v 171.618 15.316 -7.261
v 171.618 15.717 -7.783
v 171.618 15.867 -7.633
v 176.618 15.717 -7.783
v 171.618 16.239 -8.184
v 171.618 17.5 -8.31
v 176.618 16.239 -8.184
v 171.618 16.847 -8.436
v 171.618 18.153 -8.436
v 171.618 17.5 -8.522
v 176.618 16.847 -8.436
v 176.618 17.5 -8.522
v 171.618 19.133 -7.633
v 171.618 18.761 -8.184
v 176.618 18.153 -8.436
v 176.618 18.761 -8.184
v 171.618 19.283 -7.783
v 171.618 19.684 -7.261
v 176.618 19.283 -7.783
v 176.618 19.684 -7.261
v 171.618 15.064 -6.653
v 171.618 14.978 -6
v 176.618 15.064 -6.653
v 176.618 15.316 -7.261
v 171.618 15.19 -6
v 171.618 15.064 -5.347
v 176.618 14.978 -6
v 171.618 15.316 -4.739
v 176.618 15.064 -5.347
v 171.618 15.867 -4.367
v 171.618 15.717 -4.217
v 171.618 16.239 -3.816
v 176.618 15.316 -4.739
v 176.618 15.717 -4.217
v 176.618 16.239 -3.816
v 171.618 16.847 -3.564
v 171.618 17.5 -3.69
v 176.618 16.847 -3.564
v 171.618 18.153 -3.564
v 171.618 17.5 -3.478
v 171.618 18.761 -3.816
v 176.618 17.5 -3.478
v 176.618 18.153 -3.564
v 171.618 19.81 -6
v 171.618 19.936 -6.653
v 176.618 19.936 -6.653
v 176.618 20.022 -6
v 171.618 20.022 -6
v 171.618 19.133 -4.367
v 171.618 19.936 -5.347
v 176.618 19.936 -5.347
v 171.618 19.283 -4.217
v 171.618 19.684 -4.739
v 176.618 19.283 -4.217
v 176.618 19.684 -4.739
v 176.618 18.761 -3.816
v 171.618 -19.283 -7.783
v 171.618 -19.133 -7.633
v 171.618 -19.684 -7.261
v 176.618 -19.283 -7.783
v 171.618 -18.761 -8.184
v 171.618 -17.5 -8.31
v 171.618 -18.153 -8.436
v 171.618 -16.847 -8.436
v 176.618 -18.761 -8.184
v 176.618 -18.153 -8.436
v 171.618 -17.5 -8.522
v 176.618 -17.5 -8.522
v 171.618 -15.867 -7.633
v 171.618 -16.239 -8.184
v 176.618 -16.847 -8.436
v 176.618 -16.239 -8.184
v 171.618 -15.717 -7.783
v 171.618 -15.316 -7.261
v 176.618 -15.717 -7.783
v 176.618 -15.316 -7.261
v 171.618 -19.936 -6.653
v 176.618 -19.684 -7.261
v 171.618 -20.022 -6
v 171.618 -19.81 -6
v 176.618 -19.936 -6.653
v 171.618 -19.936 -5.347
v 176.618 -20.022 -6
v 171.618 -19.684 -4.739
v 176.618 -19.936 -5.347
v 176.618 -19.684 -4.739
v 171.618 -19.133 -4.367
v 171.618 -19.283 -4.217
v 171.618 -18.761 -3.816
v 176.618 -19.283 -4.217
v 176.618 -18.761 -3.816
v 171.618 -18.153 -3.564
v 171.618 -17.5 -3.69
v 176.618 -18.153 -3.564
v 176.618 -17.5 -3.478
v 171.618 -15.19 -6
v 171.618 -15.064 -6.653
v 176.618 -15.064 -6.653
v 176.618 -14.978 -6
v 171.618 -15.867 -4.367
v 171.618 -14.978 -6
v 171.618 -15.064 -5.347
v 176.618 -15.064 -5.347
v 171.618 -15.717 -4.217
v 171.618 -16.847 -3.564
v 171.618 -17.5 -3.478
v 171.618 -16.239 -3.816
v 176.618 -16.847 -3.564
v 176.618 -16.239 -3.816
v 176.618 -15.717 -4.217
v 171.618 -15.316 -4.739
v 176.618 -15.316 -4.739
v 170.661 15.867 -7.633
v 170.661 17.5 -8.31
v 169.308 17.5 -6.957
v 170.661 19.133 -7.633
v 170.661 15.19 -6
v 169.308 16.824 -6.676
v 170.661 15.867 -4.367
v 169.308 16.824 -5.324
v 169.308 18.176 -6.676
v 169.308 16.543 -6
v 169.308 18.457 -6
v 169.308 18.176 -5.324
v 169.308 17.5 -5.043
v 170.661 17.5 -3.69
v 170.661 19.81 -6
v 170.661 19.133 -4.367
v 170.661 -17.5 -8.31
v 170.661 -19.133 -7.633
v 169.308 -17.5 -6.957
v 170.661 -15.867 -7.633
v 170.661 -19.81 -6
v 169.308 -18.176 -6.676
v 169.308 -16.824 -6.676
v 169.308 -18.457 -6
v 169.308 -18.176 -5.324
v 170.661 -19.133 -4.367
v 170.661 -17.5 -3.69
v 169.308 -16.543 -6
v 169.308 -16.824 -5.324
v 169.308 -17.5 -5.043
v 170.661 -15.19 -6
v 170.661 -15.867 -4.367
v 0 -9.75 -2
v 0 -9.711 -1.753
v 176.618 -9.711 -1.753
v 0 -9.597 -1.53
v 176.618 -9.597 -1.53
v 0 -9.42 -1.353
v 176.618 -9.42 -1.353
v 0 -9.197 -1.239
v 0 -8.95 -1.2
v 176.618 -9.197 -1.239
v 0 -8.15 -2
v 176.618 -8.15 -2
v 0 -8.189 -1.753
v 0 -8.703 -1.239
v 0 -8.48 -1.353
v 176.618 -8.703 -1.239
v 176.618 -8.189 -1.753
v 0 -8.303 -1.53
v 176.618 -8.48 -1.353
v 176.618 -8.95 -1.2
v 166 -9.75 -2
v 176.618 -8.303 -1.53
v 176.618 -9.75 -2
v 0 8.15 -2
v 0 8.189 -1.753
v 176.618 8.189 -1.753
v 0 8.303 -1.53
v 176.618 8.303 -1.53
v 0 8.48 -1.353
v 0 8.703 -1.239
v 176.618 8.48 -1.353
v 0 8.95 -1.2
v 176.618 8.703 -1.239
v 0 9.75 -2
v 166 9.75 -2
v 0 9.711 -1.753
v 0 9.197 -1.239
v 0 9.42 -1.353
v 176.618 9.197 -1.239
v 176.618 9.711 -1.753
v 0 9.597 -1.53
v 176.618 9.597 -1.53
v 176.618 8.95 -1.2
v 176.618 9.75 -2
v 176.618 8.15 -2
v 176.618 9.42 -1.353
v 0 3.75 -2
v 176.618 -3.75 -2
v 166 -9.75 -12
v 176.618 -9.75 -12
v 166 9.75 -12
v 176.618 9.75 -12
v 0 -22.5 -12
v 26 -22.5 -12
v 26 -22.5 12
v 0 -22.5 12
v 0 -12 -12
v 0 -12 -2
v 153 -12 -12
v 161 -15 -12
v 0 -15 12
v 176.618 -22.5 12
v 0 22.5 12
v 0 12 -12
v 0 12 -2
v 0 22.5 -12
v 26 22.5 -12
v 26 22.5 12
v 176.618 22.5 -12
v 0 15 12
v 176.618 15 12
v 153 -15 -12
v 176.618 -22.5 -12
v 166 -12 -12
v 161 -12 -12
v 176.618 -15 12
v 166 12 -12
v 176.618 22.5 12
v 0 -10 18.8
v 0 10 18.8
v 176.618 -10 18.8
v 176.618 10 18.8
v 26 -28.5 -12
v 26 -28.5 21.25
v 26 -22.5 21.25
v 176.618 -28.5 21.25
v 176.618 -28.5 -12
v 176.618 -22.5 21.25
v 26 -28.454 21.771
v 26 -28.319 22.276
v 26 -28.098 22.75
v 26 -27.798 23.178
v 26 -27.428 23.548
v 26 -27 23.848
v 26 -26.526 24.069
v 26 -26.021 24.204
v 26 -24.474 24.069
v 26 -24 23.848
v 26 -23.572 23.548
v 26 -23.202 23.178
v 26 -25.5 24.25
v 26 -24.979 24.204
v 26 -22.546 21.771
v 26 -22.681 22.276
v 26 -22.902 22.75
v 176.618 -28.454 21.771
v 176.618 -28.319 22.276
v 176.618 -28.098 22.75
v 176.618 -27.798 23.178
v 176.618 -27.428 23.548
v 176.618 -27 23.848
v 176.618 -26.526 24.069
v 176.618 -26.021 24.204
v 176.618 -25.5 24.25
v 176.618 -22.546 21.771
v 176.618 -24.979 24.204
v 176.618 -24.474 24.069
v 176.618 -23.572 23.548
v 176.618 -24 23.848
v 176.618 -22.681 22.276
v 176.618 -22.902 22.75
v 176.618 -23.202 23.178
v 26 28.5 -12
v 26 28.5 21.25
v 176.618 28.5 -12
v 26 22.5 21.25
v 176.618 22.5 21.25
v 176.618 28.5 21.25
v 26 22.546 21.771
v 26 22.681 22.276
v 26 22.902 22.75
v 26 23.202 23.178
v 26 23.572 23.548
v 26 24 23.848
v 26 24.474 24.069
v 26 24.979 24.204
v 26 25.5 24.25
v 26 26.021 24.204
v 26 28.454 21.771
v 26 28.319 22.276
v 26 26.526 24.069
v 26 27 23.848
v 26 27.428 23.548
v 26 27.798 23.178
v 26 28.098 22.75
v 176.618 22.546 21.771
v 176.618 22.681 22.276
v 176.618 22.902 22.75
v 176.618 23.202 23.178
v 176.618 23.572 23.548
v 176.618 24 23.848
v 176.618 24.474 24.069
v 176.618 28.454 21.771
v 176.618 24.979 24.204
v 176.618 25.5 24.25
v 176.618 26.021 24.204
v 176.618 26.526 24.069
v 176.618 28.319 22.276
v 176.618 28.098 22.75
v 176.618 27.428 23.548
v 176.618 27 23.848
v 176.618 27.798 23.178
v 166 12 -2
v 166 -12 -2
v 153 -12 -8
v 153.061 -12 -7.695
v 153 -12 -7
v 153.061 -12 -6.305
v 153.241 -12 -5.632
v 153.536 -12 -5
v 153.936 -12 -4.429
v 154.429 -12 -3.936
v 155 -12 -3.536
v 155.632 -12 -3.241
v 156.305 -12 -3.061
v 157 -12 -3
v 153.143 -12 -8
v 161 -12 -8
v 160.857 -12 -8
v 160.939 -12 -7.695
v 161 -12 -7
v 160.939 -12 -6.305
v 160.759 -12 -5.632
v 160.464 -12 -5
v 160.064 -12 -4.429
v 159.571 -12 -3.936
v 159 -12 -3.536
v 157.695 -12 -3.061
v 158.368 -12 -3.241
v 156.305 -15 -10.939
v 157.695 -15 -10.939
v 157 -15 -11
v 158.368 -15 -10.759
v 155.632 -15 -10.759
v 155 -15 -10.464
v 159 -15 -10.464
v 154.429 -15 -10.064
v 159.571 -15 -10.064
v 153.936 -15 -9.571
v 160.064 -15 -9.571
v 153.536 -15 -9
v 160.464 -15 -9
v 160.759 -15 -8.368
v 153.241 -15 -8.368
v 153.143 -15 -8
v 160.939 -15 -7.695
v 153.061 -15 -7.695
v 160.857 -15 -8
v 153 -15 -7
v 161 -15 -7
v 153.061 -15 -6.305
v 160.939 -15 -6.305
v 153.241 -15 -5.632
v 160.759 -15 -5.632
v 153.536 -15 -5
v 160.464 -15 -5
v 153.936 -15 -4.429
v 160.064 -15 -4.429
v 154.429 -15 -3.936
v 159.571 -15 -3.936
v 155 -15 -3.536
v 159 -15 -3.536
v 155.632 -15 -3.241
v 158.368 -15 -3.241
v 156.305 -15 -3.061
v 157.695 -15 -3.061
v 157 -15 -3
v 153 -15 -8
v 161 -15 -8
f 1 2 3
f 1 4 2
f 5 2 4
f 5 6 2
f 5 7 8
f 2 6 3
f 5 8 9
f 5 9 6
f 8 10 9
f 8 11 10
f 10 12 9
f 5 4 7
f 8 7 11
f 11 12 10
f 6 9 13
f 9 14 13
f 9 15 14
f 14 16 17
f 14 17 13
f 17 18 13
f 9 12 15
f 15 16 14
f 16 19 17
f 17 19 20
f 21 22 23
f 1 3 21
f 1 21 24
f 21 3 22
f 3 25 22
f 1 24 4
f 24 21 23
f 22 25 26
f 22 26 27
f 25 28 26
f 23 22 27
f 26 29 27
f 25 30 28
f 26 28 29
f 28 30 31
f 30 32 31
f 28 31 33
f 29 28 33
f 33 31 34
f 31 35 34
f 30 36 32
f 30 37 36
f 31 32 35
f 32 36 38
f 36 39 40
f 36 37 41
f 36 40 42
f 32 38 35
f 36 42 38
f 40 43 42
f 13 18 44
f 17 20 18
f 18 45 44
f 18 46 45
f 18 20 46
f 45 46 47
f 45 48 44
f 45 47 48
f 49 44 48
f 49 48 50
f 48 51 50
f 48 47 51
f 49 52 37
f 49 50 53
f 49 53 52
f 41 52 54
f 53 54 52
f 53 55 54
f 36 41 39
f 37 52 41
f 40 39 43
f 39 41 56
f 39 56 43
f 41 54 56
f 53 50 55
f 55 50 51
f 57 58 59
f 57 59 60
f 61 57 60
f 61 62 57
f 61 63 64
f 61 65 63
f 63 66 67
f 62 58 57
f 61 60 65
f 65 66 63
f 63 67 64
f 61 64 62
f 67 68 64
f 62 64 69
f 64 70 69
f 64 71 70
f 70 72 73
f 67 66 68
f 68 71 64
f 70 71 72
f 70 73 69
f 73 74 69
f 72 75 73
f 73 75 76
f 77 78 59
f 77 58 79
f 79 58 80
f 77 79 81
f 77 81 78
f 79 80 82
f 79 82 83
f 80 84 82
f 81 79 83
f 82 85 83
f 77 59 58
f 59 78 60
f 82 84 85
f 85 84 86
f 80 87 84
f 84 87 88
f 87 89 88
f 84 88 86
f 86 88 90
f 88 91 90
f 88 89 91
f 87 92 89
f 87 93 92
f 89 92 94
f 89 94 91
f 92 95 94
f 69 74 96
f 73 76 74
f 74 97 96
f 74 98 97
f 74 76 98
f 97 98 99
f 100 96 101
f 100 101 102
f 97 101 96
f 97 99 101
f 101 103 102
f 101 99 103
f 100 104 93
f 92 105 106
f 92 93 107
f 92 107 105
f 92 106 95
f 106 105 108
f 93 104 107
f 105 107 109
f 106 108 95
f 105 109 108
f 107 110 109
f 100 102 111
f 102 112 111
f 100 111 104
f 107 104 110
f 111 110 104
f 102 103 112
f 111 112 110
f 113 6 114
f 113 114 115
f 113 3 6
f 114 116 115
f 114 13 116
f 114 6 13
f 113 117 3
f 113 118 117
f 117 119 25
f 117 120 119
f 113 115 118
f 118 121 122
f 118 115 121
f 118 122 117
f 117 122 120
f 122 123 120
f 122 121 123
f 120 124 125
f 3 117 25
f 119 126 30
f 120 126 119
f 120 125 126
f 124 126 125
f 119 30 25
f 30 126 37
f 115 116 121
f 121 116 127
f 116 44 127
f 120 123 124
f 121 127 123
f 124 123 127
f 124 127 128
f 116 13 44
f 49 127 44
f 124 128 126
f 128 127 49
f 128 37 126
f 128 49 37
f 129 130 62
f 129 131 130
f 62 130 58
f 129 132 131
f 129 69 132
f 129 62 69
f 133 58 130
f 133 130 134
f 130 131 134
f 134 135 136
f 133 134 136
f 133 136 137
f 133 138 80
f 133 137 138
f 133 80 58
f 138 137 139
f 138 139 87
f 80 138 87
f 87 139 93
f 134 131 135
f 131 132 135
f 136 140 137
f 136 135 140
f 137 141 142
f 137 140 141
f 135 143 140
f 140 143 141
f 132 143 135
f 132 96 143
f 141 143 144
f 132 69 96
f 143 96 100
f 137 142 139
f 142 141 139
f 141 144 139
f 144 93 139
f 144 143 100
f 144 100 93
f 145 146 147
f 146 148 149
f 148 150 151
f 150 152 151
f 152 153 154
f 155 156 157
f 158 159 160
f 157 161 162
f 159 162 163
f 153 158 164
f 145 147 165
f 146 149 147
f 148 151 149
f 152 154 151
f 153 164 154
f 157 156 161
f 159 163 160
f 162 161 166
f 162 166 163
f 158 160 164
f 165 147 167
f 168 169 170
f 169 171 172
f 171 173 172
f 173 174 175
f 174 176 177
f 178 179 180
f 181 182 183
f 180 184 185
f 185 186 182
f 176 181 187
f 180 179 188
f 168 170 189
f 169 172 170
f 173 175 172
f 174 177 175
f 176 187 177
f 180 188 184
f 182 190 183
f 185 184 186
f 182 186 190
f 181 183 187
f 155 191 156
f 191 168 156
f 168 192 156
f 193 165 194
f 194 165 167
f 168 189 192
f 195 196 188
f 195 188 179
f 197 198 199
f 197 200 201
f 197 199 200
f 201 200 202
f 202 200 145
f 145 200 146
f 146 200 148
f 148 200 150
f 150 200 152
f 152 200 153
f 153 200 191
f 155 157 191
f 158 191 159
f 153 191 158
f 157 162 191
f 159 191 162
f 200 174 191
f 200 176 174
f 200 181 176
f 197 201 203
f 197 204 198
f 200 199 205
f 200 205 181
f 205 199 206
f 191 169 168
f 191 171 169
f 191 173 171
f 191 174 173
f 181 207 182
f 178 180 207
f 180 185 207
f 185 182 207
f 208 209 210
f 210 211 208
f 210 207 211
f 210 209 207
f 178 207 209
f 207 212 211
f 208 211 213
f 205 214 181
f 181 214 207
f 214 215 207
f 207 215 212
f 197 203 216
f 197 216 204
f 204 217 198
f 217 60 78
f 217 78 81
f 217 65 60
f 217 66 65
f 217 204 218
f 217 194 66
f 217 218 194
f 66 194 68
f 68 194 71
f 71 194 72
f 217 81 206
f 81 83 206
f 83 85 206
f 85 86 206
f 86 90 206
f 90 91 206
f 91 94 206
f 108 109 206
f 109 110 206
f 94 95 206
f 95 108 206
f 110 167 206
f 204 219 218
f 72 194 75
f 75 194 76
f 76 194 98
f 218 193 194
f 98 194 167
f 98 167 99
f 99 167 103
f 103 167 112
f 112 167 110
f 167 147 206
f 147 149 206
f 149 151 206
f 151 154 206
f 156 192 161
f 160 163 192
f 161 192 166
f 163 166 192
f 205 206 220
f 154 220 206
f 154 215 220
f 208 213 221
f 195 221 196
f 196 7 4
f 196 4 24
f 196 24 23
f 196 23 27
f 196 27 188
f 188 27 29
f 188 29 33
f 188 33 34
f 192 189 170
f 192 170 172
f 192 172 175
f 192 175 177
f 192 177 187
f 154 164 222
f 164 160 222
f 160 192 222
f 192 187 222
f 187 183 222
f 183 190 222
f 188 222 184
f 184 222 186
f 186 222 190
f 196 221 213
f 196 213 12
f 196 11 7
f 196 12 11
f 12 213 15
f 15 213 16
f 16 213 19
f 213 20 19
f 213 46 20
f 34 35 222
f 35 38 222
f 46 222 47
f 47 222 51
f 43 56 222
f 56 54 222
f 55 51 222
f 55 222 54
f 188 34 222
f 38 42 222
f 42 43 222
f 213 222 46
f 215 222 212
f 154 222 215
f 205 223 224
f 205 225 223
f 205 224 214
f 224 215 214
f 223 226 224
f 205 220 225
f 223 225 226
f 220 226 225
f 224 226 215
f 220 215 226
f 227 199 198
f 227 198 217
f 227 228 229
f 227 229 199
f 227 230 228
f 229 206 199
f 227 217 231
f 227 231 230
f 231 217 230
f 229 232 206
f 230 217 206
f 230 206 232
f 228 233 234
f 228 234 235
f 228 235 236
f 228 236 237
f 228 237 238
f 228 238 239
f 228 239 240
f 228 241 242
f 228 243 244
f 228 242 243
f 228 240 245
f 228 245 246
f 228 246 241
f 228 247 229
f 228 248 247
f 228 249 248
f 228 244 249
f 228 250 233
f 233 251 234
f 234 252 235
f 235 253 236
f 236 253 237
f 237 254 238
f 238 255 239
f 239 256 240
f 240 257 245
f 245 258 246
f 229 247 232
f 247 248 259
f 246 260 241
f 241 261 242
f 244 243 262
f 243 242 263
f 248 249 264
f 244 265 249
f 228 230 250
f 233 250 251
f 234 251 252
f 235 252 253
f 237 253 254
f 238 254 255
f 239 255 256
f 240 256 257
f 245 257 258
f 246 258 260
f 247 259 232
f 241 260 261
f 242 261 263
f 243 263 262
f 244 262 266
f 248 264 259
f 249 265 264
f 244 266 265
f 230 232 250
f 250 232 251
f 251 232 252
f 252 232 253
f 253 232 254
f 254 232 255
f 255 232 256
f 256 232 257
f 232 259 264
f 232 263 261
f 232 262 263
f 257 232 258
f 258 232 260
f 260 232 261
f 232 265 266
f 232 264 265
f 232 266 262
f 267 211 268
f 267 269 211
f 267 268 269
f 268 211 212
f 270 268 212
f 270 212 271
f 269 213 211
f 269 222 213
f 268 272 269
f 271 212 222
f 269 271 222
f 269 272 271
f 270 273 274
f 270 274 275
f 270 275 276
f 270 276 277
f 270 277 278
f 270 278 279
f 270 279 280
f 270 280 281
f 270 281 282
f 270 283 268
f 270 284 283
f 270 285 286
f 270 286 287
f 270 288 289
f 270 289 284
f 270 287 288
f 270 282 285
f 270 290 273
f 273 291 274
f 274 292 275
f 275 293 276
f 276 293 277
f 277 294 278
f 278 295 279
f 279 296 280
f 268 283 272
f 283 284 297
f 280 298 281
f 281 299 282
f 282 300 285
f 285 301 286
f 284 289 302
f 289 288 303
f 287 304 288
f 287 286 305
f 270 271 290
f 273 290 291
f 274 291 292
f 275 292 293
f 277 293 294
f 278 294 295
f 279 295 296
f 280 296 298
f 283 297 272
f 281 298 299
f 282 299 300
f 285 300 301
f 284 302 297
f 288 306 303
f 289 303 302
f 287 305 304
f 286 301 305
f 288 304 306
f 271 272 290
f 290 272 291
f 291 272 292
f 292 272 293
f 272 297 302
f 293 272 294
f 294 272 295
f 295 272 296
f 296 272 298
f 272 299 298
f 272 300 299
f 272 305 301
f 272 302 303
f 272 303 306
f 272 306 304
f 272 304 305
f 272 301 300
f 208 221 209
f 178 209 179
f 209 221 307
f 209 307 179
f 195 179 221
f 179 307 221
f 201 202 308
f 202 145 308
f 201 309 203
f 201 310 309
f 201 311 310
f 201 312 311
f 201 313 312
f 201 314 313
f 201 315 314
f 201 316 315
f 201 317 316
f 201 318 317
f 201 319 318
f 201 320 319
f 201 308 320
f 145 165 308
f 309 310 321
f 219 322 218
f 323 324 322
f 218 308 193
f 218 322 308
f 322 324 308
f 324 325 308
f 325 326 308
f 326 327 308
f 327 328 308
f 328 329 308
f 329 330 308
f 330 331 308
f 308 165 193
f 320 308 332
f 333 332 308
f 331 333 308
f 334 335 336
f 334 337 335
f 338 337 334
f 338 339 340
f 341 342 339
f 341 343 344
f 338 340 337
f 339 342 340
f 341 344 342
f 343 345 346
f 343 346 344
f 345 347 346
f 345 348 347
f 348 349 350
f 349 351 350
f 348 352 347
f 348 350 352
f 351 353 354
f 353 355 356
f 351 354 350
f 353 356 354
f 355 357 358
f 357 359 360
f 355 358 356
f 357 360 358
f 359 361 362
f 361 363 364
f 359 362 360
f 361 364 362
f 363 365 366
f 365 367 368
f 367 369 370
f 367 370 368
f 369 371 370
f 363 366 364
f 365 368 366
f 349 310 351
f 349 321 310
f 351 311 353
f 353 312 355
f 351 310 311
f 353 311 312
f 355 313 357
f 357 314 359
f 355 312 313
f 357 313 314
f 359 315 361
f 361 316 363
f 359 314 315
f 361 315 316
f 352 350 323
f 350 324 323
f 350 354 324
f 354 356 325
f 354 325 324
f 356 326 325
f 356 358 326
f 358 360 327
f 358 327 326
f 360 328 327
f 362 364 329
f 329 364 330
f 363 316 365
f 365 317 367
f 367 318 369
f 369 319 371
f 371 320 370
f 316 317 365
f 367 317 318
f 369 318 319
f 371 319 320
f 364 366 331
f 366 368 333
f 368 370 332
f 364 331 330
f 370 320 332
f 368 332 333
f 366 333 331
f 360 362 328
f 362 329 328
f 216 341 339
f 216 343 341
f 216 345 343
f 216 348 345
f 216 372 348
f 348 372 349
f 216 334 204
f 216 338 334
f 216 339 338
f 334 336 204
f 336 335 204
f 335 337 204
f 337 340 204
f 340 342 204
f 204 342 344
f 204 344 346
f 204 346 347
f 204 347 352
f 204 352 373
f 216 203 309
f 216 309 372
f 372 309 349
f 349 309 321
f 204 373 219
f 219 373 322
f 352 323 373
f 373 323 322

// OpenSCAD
// file: bottom_bracket.scad
include <dimensions.scad> 

module screw_slot() {
  $fn=32;
  
  cylinder(h=total_height+1, d=screw_body_clearance);
  cylinder(h=total_height - screw_body_depth - screw_angle_depth, d=screw_head_clearance);
  translate([0, 0, total_height - screw_body_depth - screw_angle_depth]) {
    cylinder(h=screw_angle_depth, d1=screw_head_clearance, d2=screw_body_clearance);
  }
}

// Z should be set to the surface that is being joined to
module joiner_pins_male() {
  translate([depth/2, (hd_enclosure_width/2) - pin_diameter, 0]) {
    cylinder(d=pin_diameter, h=pin_length, $fn=24);
  }
  translate([depth/2, -((hd_enclosure_width/2) - pin_diameter), 0]) {
    cylinder(d=pin_diameter, h=pin_length, $fn=24);
  }
}

module cylinder_outer(height,radius,fn){
  fudge = 1/cos(180/fn);
  cylinder(h=height,r=radius*fudge,$fn=fn);
}

module sphere_outer(r,fn){
  fudge = 1/cos(180/fn);
  sphere(r=r*fudge,$fn=fn);
}

module octahedron(r=10) {
    polyhedron(
        points=[
            [r,0,0], [-r,0,0], [0,r,0], [0,-r,0], // Equator
            [0,0,r], [0,0,-r]                      // Poles
        ],
        faces=[
            [0,2,4], [2,1,4], [1,3,4], [3,0,4],    // Top faces
            [0,3,5], [3,1,5], [1,2,5], [2,0,5]     // Bottom faces
        ]
    );
}

module joiner_pins_female() {
  module pin() {
    cylinder_outer(radius=pin_diameter/2, height=pin_length, fn=24);
    //translate([0, 0, 0/*pin_length*/]) {
      sphere(r=pin_diameter/2, $fn=8);
      //}
  }
  
  translate([depth/2, (hd_enclosure_width/2) - pin_diameter, -pin_length]) {
    pin();
  }
  translate([depth/2, -((hd_enclosure_width/2) - pin_diameter), -pin_length]) {
    pin();
  }
}

module main_body(ts=true, h=total_height) {

  // the radius of the little fold in the PD side
  pd_enclosure_mini_radius = 0.8;
  dfloor = (ts ? seal_floor_offset : 0);
    
  difference() {

    // the floor
    translate([-dfloor, -hd_enclosure_width/2, 0]) {
      cube([dfloor + depth,hd_enclosure_width, h]);
    }

    // the carveout for the pet door side
    translate([depth - pd_enclosure_depth, -pd_enclosure_width/2, 0]) {
      cube([pd_enclosure_depth, pd_enclosure_width, h]);
      rotate([0, 0, 90]) {
        translate([pd_enclosure_mini_radius, 0, 0]){
          cylinder(r=pd_enclosure_mini_radius, h=h, $fn=20);
        }
        translate([pd_enclosure_width - pd_enclosure_mini_radius, 0, 0]) {
          cylinder(r=pd_enclosure_mini_radius, h=h, $fn=20);
        }
      }
    }
  }

  if (ts) {
    translate([-dfloor, 0, 0])
    trapezoid_seal(h=h);
  }
}

// the trapezoidal seal
module trapezoid_seal(h=total_height) {
  x0 = -seal_depth;

  y0 = -seal_small_width / 2;
  y1 = seal_small_width / 2;
  y2 = -seal_large_width / 2;
  y3 = seal_large_width / 2;
  
  linear_extrude(height=h) {
    polygon(points=[[x0, y0], [x0, y1], [0, y3], [0, y2]]);
  }
}

module track_slot() {
  l = seal_depth + depth + seal_floor_offset;
  
  translate([-(seal_depth + seal_floor_offset), 0, 0]) {
    rotate(a=[0,90,0]) {
      # cylinder(h=l, d=track_diameter, $fn=32);
    }
  }
}

module seal(h=overhang_height, l=hd_enclosure_depth + depth) {
  ri = overhang_indoor_width / 2;
  ro = overhang_outdoor_width / 2;

  // the indoor overhang
  translate([ri,
             -hd_enclosure_width/2 - overhang_indoor_width,
             track_height]) {
    cube([l-ri,
          overhang_indoor_width,
          h]);
    translate([0, ri, overhang_height-h])
      cylinder(r=ri, h=h, $fn=36);
  }

  // the outdoor overhang
  translate([ro,
             hd_enclosure_width/2,
             track_height]) {
    cube([l-ro,
          overhang_outdoor_width,
          h]);
    translate([0, ro, overhang_height-h])
      cylinder(r=ro, h=h, $fn=36);
  }
}

module seal_overhang(l=hd_enclosure_depth + depth) {
  translate([-hd_enclosure_depth, 0, 0])
    seal(l=l);
}


screw_y_offset = total_width / 4 + 1;
screw_x_offset = screw_body_clearance + 2;

module screw_slots() {
  translate([screw_x_offset, screw_y_offset, 0])
    screw_slot();
  
  translate([screw_x_offset, -screw_y_offset, 0])
    screw_slot();
}

// some little dots to help grip the petdoor side
module grippies(l=total_length) {
  grippy_radius = 0.75;
  grippy_thick = 0.3;
  grippy_angle = 45;
  
  for (x=[10, l-10, l/2]) {
    translate([x, 0, 0]) {
      /*
      translate([0, pd_enclosure_width/2, pd_enclosure_depth/2 - depth]) {
        // # sphere(r=grippy_radius, $fn=8);
        rotate([0, 90, 0])
        rotate([0, 0, 180-grippy_angle])
          cube([grippy_thick, grippy_radius, 3]);
      }
      translate([0, -pd_enclosure_width/2, pd_enclosure_depth/2 - depth]) {
        rotate([0, 90, 0])
        rotate([0, 0, grippy_angle])
          cube([grippy_thick, grippy_radius, 3]);
        // sphere(r=grippy_radius, $fn=8);
      }
      */
      translate([0, -pd_enclosure_width/2, pd_enclosure_depth/2 - depth])
        rotate([grippy_angle, 0, 0])
        cylinder(r=grippy_radius, h=grippy_thick, $fn=20);
      translate([0, pd_enclosure_width/2, pd_enclosure_depth/2 - depth])
        rotate([90, 0, 0])
        rotate([grippy_angle, 0, 0])
        cylinder(r=grippy_radius, h=grippy_thick, $fn=20);
    }
  }
}

module bottom_bracket() {
  
  seal_overhang();

  // screw_slots();

  difference() {
    main_body();
    track_slot();

    translate([0, 0, total_height-pin_length]) {
      joiner_pins_male();
    }
  }
}

// rotate([0, 180, 0])
translate([0, 0, -total_height]) bottom_bracket();
// file: dimensions.scad
//      +---------------------+
//      |                     |
//      |                     |
//      |                     |
//      |                     |
//      |                     |
//      |                     |
//      |                     |
//      |                     |
//      |                     |
//      |                     |
//   ^  |                     |
//   |  |                     |
//   Y  |                     |
//   |  |                     |
//   |  |                     |
//      +---------------------+
//       --  X (depth) --> 
// 

// the depth of the main body
depth = 12;

// the depth of the latch plate
latch_plate_depth = 3.25;

// the width of the enclosure for the human door side
hd_enclosure_width = 45;

// the depth of the enclosure for the human door side
hd_enclosure_depth = 10 * 2.5 + latch_plate_depth - 6 + 2;

// the width of the indoor overhang
overhang_indoor_width = 6;

// the width of the outdoor overhang
overhang_outdoor_width = 6;

// the total height
total_height = 290;

// the width of the enclosure for the pet door side
pd_enclosure_width = 20 - 0.5;

// the depth of the enclosure for the pet door side
pd_enclosure_depth = 10;

seal_floor_offset = 12;
seal_small_width = 20;
seal_large_width = 30;
seal_depth = 6.8;

// the height of the track inset area
track_height = 18;

// the diameter of the track
track_diameter = 7;

// the height of the overhang
overhang_height = total_height - track_height;

// the total width
total_width = hd_enclosure_width + overhang_indoor_width + overhang_outdoor_width;

screw_body_clearance = 4.5;
screw_head_clearance = 9;
screw_body_depth = 10;
screw_angle_depth = 3;

// pins
pin_diameter = 5;
pin_length = 5;

module simple_hd_seal(l=total_length) {
  // indoor HD seal
  ri = overhang_indoor_width / 2;
  
  translate([0,
             -(hd_enclosure_width/2 + overhang_indoor_width),
             -depth]) {
    cube([l,
          overhang_indoor_width,
          depth + hd_enclosure_depth - ri]);
    translate([0, overhang_indoor_width/2, hd_enclosure_depth + depth - ri])
      rotate([0, 90, 0])
      cylinder(r=ri, h=l, $fn=36);
  }

  // outdoor HD seal
  ro = overhang_outdoor_width / 2;
  
  translate([0,
             hd_enclosure_width/2,
             -depth]) {
    cube([l,
          overhang_outdoor_width,
          depth + hd_enclosure_depth - ro]);
    translate([0, overhang_indoor_width/2, hd_enclosure_depth + depth - ro])
      rotate([0, 90, 0])
      cylinder(r=ro, h=l, $fn=36);
  }
}

top_bracket_pd_expansion_length = 166;
top_bracket_pd_expansion_width = 24;
top_bracket_frame_depth = 26;
// main file
include <dimensions.scad>;
use <bottom_bracket.scad>;

// the Creality Max prints about 0.3% smaller, so if the model is
// 280mm long, it comes out to about 279mm actual
total_length = 176 / (1-0.0035); // requires build volume 300


module expansion_carveout() {
  w = (top_bracket_pd_expansion_width - pd_enclosure_width)/2;
  
  rotate([180, 0, 0]) {
    translate([0,
               -top_bracket_pd_expansion_width/2,
               depth-pd_enclosure_depth]) {
      cube([top_bracket_pd_expansion_length,
              w,
              pd_enclosure_depth]);
    }
    translate([0,
               pd_enclosure_width/2,
               depth-pd_enclosure_depth]) {
      cube([top_bracket_pd_expansion_length,
              w,
              pd_enclosure_depth]);
    }
  }
}

module carveouts() {
    expansion_carveout();

    translate([total_length, 0, 0])
      rotate([0, 90, 0])
      joiner_pins_female();

    w = (top_bracket_pd_expansion_width - pd_enclosure_width)/2;
    
    translate([top_bracket_pd_expansion_length - screw_carveout_length_offset,
               -top_bracket_pd_expansion_width/2,
               -screw_carveout_inset_offset]) {
      rotate([90, 0, 0])
        # cylinder(r=screw_carveout_diameter/2, h=screw_carveout_depth, $fn=36);
      translate([-screw_carveout_diameter/2, -screw_carveout_depth, -screw_carveout_diameter])
        # cube([screw_carveout_diameter,
               screw_carveout_depth,
               screw_carveout_inset_offset]);
        }
}

if (true) {
  difference() {
    rotate([0, 90, 0]) {
      main_body(h=total_length);
    }
    carveouts();
  }
} else {
  carveouts();
 }

translate([top_bracket_frame_depth, 0, 0])
simple_hd_seal(l=total_length - top_bracket_frame_depth);

screw_carveout_depth = 3;
screw_carveout_inset_offset = 7;
screw_carveout_length_offset = 9;
screw_carveout_diameter = 8;
